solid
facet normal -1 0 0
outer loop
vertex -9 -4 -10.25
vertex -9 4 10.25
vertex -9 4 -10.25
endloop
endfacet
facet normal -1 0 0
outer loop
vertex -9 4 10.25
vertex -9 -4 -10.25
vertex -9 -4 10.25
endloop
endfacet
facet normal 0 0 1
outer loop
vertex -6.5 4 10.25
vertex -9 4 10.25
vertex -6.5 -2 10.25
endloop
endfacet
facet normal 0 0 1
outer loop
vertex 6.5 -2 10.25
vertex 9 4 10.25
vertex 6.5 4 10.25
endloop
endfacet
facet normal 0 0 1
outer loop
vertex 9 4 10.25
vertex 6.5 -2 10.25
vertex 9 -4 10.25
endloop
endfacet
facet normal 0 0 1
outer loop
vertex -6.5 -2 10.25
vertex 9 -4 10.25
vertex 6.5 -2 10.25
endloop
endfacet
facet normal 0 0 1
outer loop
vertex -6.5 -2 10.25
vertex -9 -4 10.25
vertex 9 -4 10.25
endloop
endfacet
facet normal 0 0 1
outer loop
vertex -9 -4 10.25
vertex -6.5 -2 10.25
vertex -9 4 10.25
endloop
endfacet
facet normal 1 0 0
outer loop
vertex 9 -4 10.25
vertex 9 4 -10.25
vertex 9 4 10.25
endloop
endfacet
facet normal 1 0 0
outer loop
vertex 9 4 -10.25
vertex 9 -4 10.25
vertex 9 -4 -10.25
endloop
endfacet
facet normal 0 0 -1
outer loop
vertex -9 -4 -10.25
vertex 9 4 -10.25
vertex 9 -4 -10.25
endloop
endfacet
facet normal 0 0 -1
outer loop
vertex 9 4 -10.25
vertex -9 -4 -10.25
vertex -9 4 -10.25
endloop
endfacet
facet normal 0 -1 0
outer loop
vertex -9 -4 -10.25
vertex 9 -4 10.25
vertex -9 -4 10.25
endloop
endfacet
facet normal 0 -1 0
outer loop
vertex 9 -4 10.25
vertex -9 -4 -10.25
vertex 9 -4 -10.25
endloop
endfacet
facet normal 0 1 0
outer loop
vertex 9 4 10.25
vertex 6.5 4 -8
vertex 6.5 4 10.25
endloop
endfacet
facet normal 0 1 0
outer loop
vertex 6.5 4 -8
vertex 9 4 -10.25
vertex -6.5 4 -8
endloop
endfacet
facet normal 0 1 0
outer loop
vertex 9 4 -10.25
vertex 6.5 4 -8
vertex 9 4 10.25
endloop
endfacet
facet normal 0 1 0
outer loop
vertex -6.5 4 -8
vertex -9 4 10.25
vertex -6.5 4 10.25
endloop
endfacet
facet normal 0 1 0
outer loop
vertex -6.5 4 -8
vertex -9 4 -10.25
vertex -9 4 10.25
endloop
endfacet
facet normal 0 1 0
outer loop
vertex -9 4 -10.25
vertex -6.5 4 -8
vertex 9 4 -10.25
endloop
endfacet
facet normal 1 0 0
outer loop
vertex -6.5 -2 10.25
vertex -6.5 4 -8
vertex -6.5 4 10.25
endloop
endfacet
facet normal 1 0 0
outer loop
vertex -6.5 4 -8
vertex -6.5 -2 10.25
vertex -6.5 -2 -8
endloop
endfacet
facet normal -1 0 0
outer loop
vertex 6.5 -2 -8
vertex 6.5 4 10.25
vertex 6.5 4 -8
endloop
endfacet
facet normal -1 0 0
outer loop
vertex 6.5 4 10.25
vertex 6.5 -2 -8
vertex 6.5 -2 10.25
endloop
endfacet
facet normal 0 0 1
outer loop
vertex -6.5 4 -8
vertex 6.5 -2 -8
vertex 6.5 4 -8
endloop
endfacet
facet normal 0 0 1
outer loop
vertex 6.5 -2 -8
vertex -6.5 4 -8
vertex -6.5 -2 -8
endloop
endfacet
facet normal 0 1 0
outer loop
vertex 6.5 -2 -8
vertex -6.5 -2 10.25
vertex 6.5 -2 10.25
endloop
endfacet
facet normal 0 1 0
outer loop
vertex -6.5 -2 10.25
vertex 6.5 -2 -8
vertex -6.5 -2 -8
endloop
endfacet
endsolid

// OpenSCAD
//DHT11-Halterung

difference() {
cube(size = [18,8,20.5], center = true);

translate(v = [-6.5, -2, -8])
cube(size = [13,7,18.5]);
   
}

/*
translate(v = [-12, -4, 10])
cube(size = [24,4,1.5]);

translate(v = [-10, -2, -8])
color( "red", 1.0 )
cube(size = [12.5,5.8,18]);
*/
